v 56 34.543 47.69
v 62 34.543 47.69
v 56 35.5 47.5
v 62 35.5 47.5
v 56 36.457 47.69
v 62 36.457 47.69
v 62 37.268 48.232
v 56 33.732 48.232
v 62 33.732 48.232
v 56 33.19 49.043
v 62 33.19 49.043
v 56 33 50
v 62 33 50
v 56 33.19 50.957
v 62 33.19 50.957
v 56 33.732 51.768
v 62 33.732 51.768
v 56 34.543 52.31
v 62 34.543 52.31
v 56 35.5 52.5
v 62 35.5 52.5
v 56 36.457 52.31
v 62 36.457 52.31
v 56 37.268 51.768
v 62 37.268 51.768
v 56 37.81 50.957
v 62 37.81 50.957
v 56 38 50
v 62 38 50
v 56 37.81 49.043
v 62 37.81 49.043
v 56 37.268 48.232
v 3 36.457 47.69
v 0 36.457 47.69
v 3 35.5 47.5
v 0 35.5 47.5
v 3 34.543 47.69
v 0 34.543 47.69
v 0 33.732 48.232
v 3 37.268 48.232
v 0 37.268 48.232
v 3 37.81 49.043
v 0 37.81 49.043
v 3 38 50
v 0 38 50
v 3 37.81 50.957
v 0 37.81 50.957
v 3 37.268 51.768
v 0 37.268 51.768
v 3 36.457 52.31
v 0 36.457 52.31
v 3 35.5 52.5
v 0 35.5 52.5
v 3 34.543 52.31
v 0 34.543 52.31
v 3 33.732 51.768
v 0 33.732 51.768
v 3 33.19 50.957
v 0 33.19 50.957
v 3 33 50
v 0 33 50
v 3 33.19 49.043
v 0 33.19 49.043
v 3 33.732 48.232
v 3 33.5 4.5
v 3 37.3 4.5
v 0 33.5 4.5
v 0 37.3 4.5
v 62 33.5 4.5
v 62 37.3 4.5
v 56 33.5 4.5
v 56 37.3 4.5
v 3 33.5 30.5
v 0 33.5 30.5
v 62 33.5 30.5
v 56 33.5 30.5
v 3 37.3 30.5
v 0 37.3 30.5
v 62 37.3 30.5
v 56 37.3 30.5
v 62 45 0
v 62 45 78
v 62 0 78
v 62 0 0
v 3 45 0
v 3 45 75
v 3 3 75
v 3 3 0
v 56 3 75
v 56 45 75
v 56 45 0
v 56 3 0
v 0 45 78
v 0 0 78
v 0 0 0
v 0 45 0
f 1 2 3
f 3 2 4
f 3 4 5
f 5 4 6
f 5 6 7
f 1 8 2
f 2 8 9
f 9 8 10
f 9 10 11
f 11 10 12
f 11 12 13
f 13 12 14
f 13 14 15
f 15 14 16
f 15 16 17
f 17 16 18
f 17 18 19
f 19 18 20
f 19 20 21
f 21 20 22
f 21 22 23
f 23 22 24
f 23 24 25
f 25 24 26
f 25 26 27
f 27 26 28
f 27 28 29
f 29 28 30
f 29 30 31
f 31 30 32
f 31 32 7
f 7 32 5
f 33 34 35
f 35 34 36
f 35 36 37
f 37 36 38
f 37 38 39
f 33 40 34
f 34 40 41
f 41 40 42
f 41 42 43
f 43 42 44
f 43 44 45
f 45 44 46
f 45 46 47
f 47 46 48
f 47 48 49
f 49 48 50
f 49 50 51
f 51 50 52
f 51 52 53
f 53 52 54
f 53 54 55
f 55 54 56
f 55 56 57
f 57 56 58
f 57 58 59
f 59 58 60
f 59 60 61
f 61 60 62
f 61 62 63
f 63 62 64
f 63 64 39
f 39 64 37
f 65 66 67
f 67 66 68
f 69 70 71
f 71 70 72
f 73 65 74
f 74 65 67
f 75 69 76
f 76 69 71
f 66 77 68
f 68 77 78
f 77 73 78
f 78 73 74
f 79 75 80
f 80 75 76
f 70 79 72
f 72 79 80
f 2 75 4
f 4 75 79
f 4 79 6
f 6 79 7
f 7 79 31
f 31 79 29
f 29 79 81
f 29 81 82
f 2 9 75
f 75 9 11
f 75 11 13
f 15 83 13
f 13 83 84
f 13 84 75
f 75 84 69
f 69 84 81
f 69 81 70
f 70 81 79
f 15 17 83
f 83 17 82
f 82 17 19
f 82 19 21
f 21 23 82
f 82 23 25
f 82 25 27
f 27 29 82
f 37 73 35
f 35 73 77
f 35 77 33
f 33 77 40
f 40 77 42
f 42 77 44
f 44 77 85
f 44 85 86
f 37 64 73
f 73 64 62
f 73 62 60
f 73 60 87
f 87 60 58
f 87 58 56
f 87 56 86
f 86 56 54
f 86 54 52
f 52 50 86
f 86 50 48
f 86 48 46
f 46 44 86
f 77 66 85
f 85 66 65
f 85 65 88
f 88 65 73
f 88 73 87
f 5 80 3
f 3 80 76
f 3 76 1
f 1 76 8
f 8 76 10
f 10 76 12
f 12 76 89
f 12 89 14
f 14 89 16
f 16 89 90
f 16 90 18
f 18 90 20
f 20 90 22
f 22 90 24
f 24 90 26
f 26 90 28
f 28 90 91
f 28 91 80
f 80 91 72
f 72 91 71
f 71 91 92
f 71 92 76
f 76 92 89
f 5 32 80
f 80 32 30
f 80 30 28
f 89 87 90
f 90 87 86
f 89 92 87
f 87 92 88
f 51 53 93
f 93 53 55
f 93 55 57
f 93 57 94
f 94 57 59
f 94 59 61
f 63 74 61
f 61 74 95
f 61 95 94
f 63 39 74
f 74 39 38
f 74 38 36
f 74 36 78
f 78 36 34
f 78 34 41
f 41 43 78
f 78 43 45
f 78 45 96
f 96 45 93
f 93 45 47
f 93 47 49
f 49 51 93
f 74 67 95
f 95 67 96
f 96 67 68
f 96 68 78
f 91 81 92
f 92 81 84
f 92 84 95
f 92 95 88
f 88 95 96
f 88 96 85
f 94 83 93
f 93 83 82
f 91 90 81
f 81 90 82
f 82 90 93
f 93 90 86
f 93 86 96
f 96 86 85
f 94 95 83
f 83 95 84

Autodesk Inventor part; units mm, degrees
ref_plane "YZ Plane" through (0, 0, 0) normal (1, 0, 0) x (0, 1, 0)
ref_plane "XZ Plane" through (0, 0, 0) normal (0, 1, 0) x (-1, 0, 0)
ref_plane "XY Plane" through (0, 0, 0) normal (0, 0, 1) x (1, 0, 0)
sketch "Sketch2" plane through (0, 0, 0) normal (0, 1, 0) x (-1, 0, 0)
  line L0 (0, 0) -> (-59, 0)
  line L1 (-59, 0) -> (-59, 78)
  line L2 (-59, 78) -> (0, 78)
  line L3 (0, 78) -> (0, 0)
  dimension "d0" = 59
  dimension "d1" = 78
extrude "Extrusion1" add sketch "Sketch2" along normal blind 45
shell "Shell1" thickness 3 removed faces 1 at (39.3333, 45, 52)
sketch "Sketch4" plane through (59, 0, 0) normal (0, 0, -1) x (-1, 0, 0)
  point P0 (59, 0)
sketch "Sketch5" plane through (3, 3, 3) normal (0, 0, 1) x (1, 0, 0)
  line L0 (0, 0) -> (0, 42) projected
  line L1 (0, 42) -> (53, 42) projected
  line L2 (0, 0) -> (53, 0)
  line L3 (53, 0) -> (53, 42)
  line L4 (53, 42) -> (0, 42)
  line L5 (0, 42) -> (0, 0)
  point P0 (-3, -3)
extrude "Extrusion3" cut sketch "Sketch5" against normal blind 10
sketch "Sketch6" plane through (0, 0, 0) normal (-1, 0, 0) x (0, 0, 1)
  line L0 (4.5, 37.3) -> (30.5, 37.3)
  line L1 (30.5, 37.3) -> (30.5, 33.5)
  line L2 (30.5, 33.5) -> (4.5, 33.5)
  line L3 (4.5, 33.5) -> (4.5, 37.3)
  line L4 (0, 0) -> (0, 45) projected
  line L5 (0, 0) -> (78, 0) projected
  dimension "d19" = 26
  dimension "d20" = 3.8
  dimension "d21" = 4.5
  dimension "d22" = 33.5
sketch "Sketch7" plane through (59, 0, 78) normal (1, 0, 0) x (0, 0, -1)
  line L0 (0, 0) -> (78, 0) projected
  line L1 (0, 45) -> (78, 45)
  line L2 (78, 45) -> (78, 0)
  line L3 (78, 0) -> (0, 0)
  line L4 (0, 0) -> (0, 45)
extrude "Extrusion5" add sketch "Sketch7" along normal blind 3
extrude "Extrusion6" cut sketch "Sketch6" against normal through all
sketch "Sketch8" plane through (0, 0, 0) normal (-1, 0, 0) x (0, 0, 1)
  circle A0 centre (50, 35.5) radius 2.5
  point P0 (0, 0)
  dimension "d29" = 5
extrude "Extrusion7" cut sketch "Sketch8" against normal through all
properties part number "arduino with shield box v06"
